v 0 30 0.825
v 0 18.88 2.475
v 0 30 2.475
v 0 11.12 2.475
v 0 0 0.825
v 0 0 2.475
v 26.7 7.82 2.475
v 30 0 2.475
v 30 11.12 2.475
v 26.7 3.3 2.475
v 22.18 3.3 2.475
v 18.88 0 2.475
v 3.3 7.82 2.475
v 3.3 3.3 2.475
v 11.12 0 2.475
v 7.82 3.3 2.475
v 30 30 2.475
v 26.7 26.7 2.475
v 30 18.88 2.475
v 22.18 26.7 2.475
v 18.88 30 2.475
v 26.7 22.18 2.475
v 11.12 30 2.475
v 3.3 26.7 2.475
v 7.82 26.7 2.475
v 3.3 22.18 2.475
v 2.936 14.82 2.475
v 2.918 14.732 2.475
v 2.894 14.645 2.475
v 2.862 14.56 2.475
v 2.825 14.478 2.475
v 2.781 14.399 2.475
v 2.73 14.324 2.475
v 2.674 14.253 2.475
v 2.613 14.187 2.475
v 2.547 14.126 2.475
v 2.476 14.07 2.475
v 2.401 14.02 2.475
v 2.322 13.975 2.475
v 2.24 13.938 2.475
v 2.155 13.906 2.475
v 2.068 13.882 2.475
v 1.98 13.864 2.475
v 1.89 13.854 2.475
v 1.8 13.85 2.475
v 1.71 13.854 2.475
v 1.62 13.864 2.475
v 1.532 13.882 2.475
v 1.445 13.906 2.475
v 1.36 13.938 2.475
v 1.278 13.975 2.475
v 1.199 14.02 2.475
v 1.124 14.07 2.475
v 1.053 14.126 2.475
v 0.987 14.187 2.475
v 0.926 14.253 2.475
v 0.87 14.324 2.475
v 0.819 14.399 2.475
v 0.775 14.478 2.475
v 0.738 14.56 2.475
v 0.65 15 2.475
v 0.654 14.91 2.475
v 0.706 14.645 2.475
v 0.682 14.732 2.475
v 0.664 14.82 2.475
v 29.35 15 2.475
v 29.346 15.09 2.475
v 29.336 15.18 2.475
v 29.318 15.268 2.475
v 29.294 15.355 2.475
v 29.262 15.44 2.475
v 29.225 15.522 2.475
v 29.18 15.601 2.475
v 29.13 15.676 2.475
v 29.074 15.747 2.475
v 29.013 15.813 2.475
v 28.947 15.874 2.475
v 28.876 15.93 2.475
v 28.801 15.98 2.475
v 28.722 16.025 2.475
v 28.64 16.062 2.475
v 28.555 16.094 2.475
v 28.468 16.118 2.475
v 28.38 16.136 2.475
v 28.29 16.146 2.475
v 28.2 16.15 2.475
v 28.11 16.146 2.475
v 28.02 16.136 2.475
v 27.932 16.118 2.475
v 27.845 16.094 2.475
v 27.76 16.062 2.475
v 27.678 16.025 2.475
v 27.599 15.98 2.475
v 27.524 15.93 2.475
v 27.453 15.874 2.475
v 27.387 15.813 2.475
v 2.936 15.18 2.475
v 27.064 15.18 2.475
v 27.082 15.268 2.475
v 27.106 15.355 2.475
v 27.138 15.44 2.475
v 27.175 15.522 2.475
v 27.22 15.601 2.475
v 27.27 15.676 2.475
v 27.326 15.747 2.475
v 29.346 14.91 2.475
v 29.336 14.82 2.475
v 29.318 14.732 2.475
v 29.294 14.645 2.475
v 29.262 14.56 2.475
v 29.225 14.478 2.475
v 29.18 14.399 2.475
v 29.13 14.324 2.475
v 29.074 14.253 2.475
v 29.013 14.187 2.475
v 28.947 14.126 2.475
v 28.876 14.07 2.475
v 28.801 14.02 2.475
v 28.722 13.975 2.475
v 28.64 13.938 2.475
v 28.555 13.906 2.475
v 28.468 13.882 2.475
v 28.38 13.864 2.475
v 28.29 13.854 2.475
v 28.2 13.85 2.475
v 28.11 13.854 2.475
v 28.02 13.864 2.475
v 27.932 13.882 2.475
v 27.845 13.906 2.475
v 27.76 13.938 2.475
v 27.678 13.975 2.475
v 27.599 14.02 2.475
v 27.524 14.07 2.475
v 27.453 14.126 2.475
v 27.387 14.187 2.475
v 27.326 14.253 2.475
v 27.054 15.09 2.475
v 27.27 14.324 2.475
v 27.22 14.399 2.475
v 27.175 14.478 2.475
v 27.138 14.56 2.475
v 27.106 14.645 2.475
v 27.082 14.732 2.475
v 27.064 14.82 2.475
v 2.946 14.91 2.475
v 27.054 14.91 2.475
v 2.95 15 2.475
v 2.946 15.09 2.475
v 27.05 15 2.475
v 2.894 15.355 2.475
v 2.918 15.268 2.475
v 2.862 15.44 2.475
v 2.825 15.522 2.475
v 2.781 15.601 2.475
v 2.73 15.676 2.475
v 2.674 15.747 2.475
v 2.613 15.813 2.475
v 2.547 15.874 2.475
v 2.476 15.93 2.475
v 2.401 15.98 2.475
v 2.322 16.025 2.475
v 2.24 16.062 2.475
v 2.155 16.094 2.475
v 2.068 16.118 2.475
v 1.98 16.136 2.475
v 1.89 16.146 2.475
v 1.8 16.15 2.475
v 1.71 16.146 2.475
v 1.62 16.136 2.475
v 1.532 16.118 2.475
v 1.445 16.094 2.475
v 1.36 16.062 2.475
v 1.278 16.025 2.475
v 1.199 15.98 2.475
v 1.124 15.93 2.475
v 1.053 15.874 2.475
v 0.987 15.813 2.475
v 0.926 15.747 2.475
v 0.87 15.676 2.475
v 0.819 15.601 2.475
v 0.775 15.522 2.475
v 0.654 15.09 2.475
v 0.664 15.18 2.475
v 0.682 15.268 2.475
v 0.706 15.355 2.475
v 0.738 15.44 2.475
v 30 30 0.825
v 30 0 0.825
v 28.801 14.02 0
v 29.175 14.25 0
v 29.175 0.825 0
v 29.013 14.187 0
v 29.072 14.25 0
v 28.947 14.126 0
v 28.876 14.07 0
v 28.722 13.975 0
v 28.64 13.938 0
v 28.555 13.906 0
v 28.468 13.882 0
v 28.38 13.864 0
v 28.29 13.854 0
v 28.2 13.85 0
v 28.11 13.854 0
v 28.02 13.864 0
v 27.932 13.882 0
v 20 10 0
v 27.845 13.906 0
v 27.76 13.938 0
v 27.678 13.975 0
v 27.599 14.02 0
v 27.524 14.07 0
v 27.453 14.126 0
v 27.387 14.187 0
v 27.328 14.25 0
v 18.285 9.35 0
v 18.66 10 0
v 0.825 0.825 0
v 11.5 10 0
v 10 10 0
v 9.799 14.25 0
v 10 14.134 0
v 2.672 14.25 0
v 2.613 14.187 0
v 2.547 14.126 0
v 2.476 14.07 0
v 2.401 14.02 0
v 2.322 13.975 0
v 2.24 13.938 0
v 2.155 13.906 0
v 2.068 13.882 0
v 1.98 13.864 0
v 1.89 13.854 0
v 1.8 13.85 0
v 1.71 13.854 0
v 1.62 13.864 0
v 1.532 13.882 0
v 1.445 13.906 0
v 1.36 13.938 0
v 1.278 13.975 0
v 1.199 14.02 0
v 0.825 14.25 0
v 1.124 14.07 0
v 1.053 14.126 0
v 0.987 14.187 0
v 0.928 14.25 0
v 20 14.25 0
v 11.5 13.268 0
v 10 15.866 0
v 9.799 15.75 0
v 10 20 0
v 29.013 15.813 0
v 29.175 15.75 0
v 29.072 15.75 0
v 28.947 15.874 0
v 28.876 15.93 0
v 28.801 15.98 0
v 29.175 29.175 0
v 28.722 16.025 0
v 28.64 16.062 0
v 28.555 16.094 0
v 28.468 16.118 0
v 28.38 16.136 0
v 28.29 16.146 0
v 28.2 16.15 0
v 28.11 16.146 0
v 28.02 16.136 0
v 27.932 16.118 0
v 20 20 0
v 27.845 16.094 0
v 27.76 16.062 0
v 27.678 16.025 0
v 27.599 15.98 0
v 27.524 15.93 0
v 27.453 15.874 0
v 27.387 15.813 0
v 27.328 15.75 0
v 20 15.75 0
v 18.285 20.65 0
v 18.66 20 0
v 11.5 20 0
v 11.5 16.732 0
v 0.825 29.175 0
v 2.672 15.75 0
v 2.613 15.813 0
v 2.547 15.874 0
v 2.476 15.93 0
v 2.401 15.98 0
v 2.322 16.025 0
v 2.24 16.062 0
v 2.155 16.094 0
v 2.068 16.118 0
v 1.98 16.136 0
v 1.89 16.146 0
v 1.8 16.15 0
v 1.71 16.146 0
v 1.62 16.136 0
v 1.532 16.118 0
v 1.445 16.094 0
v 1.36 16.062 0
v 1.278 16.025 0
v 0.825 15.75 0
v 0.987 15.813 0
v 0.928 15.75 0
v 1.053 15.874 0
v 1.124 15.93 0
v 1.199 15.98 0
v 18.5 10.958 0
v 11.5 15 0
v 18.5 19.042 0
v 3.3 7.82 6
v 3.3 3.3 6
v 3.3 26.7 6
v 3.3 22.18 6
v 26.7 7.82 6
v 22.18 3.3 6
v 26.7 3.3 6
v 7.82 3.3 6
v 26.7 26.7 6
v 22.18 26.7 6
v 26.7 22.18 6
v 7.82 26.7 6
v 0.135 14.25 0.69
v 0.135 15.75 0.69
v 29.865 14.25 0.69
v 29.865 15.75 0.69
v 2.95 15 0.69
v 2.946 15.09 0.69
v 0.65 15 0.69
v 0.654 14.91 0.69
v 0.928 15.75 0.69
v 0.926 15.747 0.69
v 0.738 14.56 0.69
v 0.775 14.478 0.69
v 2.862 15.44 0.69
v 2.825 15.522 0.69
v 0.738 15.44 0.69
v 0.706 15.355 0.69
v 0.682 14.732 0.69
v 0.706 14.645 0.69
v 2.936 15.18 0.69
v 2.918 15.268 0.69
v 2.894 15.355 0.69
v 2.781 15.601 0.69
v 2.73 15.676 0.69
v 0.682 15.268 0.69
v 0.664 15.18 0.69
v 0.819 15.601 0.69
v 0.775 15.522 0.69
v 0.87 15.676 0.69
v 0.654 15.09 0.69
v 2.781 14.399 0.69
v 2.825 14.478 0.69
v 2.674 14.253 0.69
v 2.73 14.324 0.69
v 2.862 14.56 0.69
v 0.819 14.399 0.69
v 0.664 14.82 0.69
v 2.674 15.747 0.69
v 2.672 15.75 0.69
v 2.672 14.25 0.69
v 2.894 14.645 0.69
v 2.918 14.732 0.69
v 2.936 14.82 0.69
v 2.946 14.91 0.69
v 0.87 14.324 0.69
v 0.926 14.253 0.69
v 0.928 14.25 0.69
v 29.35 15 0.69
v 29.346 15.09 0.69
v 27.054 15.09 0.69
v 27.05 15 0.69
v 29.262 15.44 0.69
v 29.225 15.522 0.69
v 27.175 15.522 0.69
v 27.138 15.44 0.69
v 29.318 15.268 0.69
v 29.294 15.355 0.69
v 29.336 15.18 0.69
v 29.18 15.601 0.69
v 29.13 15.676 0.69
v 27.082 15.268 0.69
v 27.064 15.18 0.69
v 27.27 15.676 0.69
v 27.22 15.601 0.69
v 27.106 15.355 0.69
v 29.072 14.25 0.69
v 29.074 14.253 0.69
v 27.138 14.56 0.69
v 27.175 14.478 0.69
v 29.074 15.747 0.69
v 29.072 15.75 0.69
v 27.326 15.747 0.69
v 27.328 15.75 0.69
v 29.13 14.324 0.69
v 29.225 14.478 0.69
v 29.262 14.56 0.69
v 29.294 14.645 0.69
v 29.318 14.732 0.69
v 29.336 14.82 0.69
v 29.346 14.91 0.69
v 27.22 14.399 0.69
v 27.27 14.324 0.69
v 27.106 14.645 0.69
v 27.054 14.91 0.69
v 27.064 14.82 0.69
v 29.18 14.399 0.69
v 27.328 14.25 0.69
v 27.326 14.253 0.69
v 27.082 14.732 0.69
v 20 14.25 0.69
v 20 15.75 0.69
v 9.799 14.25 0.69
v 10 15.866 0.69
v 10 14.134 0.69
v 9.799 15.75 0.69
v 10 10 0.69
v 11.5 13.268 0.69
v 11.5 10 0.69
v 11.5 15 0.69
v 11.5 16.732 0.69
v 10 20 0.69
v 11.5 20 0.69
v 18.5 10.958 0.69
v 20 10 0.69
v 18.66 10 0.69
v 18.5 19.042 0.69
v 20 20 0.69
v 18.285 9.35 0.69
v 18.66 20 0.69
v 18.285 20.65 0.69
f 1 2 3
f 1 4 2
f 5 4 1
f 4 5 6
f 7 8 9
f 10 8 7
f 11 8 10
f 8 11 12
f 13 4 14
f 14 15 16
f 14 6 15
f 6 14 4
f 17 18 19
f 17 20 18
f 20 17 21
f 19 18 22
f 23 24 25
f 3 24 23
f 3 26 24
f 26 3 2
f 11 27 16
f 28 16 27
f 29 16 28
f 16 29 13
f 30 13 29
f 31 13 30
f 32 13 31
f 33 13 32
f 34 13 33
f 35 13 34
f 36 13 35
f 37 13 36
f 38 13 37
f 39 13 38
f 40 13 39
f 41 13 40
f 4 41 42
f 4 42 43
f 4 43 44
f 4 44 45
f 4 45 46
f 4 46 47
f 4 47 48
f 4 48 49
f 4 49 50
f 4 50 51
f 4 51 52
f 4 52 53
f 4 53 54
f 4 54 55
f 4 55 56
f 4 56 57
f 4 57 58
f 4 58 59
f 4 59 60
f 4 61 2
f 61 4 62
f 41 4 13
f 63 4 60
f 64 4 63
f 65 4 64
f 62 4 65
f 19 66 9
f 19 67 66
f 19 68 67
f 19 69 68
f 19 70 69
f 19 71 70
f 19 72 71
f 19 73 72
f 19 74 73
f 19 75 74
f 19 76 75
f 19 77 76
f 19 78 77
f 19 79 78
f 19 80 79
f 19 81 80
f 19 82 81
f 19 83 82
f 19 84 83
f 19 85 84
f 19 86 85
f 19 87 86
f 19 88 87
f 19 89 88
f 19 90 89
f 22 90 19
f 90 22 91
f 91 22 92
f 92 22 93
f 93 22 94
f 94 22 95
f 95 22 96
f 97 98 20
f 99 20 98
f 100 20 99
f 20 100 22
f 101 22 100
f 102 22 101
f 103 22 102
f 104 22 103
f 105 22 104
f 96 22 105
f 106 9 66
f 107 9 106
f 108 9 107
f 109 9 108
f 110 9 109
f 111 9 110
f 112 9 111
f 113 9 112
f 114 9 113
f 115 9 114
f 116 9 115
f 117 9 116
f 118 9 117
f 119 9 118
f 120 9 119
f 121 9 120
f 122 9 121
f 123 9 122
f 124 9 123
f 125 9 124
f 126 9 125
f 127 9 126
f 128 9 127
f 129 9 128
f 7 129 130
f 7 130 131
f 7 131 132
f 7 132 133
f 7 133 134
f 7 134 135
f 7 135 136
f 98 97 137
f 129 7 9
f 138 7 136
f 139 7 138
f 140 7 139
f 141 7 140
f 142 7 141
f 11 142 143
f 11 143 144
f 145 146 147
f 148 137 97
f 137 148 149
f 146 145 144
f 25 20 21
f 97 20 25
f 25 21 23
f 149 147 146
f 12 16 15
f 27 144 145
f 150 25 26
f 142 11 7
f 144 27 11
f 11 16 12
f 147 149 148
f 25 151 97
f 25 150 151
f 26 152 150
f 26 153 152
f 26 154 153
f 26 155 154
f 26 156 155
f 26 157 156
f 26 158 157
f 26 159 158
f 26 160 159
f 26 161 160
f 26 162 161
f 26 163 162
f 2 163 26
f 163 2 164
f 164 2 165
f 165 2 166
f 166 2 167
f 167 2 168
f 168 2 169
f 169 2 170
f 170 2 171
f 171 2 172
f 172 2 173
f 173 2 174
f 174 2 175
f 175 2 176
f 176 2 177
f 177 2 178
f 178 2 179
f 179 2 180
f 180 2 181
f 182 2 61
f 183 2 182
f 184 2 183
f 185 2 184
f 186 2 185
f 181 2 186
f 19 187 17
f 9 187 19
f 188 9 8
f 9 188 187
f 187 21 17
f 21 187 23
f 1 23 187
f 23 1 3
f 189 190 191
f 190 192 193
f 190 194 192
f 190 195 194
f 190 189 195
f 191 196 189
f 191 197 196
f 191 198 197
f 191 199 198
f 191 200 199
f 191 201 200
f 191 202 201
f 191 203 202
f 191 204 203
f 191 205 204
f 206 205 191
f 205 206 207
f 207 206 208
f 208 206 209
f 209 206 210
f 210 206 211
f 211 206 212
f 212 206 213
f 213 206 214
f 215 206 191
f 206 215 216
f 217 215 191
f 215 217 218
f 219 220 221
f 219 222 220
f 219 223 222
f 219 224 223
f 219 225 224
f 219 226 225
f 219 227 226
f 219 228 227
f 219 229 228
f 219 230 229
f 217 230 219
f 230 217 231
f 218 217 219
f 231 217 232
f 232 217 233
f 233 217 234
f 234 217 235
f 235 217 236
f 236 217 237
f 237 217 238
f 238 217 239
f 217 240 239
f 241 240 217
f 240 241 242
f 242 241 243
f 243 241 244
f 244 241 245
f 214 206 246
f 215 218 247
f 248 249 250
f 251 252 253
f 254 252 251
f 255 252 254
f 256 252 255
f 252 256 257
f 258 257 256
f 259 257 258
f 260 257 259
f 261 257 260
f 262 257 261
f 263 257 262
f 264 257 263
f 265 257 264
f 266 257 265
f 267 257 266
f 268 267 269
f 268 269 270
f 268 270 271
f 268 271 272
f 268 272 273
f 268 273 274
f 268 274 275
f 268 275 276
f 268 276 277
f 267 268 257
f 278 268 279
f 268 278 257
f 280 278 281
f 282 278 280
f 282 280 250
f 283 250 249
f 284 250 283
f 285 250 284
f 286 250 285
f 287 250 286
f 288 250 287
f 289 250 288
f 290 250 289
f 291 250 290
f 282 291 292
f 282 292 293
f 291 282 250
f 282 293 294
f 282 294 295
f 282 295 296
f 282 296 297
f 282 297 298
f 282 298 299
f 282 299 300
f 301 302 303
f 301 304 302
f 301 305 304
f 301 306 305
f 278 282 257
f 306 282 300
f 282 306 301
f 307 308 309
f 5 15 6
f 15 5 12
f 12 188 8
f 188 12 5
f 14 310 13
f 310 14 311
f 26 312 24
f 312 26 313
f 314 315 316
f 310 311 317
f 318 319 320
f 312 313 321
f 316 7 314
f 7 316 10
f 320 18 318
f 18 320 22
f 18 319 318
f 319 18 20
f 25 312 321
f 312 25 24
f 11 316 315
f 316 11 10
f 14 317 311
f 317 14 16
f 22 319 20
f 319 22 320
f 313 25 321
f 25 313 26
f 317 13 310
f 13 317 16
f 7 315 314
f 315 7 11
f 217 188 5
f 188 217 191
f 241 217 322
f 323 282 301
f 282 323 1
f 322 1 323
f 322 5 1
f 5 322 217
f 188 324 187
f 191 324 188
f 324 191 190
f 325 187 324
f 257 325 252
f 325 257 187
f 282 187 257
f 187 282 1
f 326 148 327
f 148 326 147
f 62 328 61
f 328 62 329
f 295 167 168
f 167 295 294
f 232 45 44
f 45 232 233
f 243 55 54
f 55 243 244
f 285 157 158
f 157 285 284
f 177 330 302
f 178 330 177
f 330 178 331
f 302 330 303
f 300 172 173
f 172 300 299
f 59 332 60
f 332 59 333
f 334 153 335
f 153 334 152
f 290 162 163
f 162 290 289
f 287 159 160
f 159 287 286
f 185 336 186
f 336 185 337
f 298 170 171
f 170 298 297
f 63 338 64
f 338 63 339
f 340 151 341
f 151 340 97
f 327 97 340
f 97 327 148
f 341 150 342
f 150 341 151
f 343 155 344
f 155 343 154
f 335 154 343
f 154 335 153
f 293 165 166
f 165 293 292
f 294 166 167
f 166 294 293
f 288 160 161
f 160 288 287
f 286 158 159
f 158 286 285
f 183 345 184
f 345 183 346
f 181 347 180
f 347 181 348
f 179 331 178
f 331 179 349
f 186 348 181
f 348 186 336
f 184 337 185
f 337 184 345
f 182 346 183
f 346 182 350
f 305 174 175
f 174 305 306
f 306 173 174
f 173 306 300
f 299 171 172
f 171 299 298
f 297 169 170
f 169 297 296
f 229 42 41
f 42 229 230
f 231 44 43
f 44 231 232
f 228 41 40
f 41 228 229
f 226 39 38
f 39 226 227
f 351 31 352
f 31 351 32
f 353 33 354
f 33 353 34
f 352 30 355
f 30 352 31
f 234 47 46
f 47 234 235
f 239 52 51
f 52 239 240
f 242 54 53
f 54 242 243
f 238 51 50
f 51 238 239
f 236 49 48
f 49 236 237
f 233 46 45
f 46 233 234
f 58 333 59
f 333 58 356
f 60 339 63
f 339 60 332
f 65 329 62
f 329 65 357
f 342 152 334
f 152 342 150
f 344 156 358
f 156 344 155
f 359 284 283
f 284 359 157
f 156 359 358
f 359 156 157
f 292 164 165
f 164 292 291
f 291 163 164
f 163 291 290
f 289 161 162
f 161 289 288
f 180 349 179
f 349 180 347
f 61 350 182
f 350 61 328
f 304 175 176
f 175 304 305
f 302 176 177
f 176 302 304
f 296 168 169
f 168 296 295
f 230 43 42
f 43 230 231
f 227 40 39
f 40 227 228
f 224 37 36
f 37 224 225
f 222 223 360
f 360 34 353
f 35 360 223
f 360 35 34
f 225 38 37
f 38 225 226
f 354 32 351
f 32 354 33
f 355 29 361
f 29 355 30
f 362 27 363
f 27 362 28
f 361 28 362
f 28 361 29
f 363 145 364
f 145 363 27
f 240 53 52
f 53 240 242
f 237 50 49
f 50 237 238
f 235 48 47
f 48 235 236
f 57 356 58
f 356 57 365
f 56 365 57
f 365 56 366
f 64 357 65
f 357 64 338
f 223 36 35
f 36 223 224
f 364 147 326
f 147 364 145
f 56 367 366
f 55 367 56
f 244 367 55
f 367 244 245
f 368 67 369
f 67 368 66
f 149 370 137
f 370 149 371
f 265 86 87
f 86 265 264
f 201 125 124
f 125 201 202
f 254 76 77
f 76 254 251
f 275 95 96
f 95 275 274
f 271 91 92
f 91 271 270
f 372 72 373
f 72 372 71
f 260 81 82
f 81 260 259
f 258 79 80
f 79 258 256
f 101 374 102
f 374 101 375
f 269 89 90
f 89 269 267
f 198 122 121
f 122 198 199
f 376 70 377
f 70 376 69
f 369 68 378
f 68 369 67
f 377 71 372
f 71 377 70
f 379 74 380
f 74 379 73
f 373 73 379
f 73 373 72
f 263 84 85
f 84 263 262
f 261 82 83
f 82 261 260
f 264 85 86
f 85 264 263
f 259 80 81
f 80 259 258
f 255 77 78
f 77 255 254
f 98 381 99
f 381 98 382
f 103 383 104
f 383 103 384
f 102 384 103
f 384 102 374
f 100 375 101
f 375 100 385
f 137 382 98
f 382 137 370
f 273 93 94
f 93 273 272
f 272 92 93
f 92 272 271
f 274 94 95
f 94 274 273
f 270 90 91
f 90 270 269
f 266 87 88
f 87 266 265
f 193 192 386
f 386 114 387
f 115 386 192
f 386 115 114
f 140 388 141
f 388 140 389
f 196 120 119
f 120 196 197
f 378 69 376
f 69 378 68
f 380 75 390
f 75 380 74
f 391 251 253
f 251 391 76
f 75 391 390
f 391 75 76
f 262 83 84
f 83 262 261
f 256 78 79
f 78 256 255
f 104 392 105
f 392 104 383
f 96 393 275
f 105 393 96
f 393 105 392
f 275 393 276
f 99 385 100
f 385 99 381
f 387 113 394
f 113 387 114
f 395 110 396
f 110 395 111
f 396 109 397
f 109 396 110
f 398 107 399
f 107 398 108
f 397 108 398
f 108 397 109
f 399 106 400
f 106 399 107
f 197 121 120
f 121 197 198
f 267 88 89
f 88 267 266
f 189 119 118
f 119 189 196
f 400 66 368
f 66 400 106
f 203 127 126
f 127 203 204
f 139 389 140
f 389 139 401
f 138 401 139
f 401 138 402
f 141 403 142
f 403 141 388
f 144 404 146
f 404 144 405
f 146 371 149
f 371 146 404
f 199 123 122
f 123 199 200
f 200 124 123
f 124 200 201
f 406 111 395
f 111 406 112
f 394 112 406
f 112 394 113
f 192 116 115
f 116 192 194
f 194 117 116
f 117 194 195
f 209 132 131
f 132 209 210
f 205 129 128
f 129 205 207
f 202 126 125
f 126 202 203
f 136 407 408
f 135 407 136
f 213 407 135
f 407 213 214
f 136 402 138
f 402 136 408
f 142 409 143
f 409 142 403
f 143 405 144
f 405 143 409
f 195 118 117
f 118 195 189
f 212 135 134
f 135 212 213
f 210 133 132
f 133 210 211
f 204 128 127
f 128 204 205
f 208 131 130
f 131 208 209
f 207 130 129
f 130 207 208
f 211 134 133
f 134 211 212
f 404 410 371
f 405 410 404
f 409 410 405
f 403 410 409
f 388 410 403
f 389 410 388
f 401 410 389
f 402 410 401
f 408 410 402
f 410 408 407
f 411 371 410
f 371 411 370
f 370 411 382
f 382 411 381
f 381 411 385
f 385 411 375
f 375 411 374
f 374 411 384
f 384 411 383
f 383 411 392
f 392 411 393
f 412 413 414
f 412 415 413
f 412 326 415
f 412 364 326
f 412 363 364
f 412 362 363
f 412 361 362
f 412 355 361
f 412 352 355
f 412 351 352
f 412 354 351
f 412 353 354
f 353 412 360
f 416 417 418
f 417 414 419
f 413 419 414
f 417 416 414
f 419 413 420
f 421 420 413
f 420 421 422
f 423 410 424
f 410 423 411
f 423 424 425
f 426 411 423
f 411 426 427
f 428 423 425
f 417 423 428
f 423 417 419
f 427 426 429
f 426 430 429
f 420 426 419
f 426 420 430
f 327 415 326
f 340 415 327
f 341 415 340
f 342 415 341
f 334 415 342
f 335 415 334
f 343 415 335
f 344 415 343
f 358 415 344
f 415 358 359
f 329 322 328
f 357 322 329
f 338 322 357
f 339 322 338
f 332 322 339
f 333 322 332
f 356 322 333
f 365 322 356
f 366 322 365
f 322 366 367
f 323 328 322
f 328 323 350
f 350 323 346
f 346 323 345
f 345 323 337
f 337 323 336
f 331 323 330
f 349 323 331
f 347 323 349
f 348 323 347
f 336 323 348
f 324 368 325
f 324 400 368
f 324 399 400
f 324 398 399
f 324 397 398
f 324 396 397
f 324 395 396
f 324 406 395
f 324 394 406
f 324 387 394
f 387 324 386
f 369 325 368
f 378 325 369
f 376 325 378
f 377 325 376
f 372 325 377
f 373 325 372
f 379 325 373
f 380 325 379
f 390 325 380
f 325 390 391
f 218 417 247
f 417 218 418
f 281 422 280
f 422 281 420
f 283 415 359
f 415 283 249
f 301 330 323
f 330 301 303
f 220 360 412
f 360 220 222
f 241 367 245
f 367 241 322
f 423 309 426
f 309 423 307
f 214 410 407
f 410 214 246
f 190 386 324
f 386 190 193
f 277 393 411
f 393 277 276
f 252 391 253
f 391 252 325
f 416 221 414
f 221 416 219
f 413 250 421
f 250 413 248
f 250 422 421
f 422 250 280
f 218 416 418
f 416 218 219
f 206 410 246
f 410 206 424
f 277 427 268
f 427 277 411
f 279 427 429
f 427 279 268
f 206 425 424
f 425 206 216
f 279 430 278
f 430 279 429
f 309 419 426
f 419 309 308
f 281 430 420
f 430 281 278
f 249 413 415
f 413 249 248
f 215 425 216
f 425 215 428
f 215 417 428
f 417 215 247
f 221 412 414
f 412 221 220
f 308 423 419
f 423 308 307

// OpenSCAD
// file: settings.scad
cube_width=30;
cube_height=16;
cube_thickness=3.3;

cap_width=30;
cap_height=6;
cap_thickness=3.3;

glyph_depth=0.7;
glyph_thickness=1.5;

photo_resitor_hole_r = 3.1;
spring_contact_hole_r = 3.35;
// file: sym_diode.scad
module diode(length, width, thickness, height)
{
    translate([0,-thickness/2,0])cube([(length-width*0.7)/2, thickness, height]);
    translate([(length+width*0.7)/2,-thickness/2,0])cube([(length-width*0.7)/2, thickness, height]);
    
    translate([(length-width)/2,-width/2, 0])cube([thickness, width, height]);
    translate([(length+width*0.7)/2,-width/2, 0])cube([thickness, width, height]);
    //translate([(length+width)/2,-thickness/2,0])cube([(length-width)/2, thickness, height]);
    translate([(length-width)/2,0,0])rotate([0,0,30])translate([0,-thickness/2,0])cube([width, thickness, height]);
    translate([(length-width)/2,0,0])rotate([0,0,-30])translate([0,-thickness/2,0])cube([width, thickness, height]);
}

diode(30, 12, 1, 1);
// file: cap_1x1.scad
include <settings.scad>

module cap_1x1(width, height, thickness, holes_mask)
{
    width1=width-thickness;
    difference()
    {
        union()
        {
            cube([width, width, thickness*3/4]);
            translate([thickness,thickness,0])cube([width-2*thickness, width-2*thickness, height]);
        }
        union()
        {
            translate([width/2,width/2,0])rotate([0,0,45])translate([-width1/2,-width1/2,thickness*3/4]) cube([width1,width1,height]);
                        //corners
            translate([0,0.25*thickness,0])rotate([45,0,0]) translate([-0.5*width, -width, -0.5*height]) cube([2*width, width, 2*height]);
            translate([0.25*thickness,0,0]) rotate([0,-45,0]) translate([-width, -0.5*width, -0.5*height]) cube([width, 2*width, 2*height]);
            translate([width-0.25*thickness,0,0]) rotate([0,45,0]) translate([0, 0, -0.5*height]) cube([width, 2*width, 2*height]);
            translate([0,width-0.25*thickness,0]) rotate([-45,0,0]) translate([-0.5*width, 0, -0.5*height]) cube([2*width, width, 2*height]);
            
            if (holes_mask >= 8)
            {
                translate([width/2, thickness-1.5, -0.5]) cylinder(r=1.15, h=height*1.5, $fn=80);
            }
            if ((holes_mask%8) >= 4)
            {
                translate([width/2, width-thickness+1.5, -0.5]) cylinder(r=1.15, h=height*1.5, $fn=80);
            }
            if ((holes_mask%4)>= 2)
            {
                translate([thickness-1.5, width/2, -0.5]) cylinder(r=1.15, h=height*1.5, $fn=80);
            }
            if (holes_mask%2 >= 1)
            {
                translate([width-thickness+1.5, width/2, -0.5]) cylinder(r=1.15, h=height*1.5, $fn=80);
            }
        }
    }
}

cap_1x1(cap_width, cap_height, cap_thickness, 9);
//ring(10,1,1);
//arrow(1, 20, 3, 1);
//transistor_npn(30, 1, 1);
// main file
use <cap_1x1.scad>
use <sym_diode.scad>
include <settings.scad>

module cap_1x1_diode(width, height, thickness)
{
    difference()
    {
        cap_1x1(width, height, thickness, 3);
        translate([0,width/2,-0.01]) diode(width, width/3, glyph_thickness, glyph_depth);
    }
}

cap_1x1_diode(cap_width, cap_height, cap_thickness);
